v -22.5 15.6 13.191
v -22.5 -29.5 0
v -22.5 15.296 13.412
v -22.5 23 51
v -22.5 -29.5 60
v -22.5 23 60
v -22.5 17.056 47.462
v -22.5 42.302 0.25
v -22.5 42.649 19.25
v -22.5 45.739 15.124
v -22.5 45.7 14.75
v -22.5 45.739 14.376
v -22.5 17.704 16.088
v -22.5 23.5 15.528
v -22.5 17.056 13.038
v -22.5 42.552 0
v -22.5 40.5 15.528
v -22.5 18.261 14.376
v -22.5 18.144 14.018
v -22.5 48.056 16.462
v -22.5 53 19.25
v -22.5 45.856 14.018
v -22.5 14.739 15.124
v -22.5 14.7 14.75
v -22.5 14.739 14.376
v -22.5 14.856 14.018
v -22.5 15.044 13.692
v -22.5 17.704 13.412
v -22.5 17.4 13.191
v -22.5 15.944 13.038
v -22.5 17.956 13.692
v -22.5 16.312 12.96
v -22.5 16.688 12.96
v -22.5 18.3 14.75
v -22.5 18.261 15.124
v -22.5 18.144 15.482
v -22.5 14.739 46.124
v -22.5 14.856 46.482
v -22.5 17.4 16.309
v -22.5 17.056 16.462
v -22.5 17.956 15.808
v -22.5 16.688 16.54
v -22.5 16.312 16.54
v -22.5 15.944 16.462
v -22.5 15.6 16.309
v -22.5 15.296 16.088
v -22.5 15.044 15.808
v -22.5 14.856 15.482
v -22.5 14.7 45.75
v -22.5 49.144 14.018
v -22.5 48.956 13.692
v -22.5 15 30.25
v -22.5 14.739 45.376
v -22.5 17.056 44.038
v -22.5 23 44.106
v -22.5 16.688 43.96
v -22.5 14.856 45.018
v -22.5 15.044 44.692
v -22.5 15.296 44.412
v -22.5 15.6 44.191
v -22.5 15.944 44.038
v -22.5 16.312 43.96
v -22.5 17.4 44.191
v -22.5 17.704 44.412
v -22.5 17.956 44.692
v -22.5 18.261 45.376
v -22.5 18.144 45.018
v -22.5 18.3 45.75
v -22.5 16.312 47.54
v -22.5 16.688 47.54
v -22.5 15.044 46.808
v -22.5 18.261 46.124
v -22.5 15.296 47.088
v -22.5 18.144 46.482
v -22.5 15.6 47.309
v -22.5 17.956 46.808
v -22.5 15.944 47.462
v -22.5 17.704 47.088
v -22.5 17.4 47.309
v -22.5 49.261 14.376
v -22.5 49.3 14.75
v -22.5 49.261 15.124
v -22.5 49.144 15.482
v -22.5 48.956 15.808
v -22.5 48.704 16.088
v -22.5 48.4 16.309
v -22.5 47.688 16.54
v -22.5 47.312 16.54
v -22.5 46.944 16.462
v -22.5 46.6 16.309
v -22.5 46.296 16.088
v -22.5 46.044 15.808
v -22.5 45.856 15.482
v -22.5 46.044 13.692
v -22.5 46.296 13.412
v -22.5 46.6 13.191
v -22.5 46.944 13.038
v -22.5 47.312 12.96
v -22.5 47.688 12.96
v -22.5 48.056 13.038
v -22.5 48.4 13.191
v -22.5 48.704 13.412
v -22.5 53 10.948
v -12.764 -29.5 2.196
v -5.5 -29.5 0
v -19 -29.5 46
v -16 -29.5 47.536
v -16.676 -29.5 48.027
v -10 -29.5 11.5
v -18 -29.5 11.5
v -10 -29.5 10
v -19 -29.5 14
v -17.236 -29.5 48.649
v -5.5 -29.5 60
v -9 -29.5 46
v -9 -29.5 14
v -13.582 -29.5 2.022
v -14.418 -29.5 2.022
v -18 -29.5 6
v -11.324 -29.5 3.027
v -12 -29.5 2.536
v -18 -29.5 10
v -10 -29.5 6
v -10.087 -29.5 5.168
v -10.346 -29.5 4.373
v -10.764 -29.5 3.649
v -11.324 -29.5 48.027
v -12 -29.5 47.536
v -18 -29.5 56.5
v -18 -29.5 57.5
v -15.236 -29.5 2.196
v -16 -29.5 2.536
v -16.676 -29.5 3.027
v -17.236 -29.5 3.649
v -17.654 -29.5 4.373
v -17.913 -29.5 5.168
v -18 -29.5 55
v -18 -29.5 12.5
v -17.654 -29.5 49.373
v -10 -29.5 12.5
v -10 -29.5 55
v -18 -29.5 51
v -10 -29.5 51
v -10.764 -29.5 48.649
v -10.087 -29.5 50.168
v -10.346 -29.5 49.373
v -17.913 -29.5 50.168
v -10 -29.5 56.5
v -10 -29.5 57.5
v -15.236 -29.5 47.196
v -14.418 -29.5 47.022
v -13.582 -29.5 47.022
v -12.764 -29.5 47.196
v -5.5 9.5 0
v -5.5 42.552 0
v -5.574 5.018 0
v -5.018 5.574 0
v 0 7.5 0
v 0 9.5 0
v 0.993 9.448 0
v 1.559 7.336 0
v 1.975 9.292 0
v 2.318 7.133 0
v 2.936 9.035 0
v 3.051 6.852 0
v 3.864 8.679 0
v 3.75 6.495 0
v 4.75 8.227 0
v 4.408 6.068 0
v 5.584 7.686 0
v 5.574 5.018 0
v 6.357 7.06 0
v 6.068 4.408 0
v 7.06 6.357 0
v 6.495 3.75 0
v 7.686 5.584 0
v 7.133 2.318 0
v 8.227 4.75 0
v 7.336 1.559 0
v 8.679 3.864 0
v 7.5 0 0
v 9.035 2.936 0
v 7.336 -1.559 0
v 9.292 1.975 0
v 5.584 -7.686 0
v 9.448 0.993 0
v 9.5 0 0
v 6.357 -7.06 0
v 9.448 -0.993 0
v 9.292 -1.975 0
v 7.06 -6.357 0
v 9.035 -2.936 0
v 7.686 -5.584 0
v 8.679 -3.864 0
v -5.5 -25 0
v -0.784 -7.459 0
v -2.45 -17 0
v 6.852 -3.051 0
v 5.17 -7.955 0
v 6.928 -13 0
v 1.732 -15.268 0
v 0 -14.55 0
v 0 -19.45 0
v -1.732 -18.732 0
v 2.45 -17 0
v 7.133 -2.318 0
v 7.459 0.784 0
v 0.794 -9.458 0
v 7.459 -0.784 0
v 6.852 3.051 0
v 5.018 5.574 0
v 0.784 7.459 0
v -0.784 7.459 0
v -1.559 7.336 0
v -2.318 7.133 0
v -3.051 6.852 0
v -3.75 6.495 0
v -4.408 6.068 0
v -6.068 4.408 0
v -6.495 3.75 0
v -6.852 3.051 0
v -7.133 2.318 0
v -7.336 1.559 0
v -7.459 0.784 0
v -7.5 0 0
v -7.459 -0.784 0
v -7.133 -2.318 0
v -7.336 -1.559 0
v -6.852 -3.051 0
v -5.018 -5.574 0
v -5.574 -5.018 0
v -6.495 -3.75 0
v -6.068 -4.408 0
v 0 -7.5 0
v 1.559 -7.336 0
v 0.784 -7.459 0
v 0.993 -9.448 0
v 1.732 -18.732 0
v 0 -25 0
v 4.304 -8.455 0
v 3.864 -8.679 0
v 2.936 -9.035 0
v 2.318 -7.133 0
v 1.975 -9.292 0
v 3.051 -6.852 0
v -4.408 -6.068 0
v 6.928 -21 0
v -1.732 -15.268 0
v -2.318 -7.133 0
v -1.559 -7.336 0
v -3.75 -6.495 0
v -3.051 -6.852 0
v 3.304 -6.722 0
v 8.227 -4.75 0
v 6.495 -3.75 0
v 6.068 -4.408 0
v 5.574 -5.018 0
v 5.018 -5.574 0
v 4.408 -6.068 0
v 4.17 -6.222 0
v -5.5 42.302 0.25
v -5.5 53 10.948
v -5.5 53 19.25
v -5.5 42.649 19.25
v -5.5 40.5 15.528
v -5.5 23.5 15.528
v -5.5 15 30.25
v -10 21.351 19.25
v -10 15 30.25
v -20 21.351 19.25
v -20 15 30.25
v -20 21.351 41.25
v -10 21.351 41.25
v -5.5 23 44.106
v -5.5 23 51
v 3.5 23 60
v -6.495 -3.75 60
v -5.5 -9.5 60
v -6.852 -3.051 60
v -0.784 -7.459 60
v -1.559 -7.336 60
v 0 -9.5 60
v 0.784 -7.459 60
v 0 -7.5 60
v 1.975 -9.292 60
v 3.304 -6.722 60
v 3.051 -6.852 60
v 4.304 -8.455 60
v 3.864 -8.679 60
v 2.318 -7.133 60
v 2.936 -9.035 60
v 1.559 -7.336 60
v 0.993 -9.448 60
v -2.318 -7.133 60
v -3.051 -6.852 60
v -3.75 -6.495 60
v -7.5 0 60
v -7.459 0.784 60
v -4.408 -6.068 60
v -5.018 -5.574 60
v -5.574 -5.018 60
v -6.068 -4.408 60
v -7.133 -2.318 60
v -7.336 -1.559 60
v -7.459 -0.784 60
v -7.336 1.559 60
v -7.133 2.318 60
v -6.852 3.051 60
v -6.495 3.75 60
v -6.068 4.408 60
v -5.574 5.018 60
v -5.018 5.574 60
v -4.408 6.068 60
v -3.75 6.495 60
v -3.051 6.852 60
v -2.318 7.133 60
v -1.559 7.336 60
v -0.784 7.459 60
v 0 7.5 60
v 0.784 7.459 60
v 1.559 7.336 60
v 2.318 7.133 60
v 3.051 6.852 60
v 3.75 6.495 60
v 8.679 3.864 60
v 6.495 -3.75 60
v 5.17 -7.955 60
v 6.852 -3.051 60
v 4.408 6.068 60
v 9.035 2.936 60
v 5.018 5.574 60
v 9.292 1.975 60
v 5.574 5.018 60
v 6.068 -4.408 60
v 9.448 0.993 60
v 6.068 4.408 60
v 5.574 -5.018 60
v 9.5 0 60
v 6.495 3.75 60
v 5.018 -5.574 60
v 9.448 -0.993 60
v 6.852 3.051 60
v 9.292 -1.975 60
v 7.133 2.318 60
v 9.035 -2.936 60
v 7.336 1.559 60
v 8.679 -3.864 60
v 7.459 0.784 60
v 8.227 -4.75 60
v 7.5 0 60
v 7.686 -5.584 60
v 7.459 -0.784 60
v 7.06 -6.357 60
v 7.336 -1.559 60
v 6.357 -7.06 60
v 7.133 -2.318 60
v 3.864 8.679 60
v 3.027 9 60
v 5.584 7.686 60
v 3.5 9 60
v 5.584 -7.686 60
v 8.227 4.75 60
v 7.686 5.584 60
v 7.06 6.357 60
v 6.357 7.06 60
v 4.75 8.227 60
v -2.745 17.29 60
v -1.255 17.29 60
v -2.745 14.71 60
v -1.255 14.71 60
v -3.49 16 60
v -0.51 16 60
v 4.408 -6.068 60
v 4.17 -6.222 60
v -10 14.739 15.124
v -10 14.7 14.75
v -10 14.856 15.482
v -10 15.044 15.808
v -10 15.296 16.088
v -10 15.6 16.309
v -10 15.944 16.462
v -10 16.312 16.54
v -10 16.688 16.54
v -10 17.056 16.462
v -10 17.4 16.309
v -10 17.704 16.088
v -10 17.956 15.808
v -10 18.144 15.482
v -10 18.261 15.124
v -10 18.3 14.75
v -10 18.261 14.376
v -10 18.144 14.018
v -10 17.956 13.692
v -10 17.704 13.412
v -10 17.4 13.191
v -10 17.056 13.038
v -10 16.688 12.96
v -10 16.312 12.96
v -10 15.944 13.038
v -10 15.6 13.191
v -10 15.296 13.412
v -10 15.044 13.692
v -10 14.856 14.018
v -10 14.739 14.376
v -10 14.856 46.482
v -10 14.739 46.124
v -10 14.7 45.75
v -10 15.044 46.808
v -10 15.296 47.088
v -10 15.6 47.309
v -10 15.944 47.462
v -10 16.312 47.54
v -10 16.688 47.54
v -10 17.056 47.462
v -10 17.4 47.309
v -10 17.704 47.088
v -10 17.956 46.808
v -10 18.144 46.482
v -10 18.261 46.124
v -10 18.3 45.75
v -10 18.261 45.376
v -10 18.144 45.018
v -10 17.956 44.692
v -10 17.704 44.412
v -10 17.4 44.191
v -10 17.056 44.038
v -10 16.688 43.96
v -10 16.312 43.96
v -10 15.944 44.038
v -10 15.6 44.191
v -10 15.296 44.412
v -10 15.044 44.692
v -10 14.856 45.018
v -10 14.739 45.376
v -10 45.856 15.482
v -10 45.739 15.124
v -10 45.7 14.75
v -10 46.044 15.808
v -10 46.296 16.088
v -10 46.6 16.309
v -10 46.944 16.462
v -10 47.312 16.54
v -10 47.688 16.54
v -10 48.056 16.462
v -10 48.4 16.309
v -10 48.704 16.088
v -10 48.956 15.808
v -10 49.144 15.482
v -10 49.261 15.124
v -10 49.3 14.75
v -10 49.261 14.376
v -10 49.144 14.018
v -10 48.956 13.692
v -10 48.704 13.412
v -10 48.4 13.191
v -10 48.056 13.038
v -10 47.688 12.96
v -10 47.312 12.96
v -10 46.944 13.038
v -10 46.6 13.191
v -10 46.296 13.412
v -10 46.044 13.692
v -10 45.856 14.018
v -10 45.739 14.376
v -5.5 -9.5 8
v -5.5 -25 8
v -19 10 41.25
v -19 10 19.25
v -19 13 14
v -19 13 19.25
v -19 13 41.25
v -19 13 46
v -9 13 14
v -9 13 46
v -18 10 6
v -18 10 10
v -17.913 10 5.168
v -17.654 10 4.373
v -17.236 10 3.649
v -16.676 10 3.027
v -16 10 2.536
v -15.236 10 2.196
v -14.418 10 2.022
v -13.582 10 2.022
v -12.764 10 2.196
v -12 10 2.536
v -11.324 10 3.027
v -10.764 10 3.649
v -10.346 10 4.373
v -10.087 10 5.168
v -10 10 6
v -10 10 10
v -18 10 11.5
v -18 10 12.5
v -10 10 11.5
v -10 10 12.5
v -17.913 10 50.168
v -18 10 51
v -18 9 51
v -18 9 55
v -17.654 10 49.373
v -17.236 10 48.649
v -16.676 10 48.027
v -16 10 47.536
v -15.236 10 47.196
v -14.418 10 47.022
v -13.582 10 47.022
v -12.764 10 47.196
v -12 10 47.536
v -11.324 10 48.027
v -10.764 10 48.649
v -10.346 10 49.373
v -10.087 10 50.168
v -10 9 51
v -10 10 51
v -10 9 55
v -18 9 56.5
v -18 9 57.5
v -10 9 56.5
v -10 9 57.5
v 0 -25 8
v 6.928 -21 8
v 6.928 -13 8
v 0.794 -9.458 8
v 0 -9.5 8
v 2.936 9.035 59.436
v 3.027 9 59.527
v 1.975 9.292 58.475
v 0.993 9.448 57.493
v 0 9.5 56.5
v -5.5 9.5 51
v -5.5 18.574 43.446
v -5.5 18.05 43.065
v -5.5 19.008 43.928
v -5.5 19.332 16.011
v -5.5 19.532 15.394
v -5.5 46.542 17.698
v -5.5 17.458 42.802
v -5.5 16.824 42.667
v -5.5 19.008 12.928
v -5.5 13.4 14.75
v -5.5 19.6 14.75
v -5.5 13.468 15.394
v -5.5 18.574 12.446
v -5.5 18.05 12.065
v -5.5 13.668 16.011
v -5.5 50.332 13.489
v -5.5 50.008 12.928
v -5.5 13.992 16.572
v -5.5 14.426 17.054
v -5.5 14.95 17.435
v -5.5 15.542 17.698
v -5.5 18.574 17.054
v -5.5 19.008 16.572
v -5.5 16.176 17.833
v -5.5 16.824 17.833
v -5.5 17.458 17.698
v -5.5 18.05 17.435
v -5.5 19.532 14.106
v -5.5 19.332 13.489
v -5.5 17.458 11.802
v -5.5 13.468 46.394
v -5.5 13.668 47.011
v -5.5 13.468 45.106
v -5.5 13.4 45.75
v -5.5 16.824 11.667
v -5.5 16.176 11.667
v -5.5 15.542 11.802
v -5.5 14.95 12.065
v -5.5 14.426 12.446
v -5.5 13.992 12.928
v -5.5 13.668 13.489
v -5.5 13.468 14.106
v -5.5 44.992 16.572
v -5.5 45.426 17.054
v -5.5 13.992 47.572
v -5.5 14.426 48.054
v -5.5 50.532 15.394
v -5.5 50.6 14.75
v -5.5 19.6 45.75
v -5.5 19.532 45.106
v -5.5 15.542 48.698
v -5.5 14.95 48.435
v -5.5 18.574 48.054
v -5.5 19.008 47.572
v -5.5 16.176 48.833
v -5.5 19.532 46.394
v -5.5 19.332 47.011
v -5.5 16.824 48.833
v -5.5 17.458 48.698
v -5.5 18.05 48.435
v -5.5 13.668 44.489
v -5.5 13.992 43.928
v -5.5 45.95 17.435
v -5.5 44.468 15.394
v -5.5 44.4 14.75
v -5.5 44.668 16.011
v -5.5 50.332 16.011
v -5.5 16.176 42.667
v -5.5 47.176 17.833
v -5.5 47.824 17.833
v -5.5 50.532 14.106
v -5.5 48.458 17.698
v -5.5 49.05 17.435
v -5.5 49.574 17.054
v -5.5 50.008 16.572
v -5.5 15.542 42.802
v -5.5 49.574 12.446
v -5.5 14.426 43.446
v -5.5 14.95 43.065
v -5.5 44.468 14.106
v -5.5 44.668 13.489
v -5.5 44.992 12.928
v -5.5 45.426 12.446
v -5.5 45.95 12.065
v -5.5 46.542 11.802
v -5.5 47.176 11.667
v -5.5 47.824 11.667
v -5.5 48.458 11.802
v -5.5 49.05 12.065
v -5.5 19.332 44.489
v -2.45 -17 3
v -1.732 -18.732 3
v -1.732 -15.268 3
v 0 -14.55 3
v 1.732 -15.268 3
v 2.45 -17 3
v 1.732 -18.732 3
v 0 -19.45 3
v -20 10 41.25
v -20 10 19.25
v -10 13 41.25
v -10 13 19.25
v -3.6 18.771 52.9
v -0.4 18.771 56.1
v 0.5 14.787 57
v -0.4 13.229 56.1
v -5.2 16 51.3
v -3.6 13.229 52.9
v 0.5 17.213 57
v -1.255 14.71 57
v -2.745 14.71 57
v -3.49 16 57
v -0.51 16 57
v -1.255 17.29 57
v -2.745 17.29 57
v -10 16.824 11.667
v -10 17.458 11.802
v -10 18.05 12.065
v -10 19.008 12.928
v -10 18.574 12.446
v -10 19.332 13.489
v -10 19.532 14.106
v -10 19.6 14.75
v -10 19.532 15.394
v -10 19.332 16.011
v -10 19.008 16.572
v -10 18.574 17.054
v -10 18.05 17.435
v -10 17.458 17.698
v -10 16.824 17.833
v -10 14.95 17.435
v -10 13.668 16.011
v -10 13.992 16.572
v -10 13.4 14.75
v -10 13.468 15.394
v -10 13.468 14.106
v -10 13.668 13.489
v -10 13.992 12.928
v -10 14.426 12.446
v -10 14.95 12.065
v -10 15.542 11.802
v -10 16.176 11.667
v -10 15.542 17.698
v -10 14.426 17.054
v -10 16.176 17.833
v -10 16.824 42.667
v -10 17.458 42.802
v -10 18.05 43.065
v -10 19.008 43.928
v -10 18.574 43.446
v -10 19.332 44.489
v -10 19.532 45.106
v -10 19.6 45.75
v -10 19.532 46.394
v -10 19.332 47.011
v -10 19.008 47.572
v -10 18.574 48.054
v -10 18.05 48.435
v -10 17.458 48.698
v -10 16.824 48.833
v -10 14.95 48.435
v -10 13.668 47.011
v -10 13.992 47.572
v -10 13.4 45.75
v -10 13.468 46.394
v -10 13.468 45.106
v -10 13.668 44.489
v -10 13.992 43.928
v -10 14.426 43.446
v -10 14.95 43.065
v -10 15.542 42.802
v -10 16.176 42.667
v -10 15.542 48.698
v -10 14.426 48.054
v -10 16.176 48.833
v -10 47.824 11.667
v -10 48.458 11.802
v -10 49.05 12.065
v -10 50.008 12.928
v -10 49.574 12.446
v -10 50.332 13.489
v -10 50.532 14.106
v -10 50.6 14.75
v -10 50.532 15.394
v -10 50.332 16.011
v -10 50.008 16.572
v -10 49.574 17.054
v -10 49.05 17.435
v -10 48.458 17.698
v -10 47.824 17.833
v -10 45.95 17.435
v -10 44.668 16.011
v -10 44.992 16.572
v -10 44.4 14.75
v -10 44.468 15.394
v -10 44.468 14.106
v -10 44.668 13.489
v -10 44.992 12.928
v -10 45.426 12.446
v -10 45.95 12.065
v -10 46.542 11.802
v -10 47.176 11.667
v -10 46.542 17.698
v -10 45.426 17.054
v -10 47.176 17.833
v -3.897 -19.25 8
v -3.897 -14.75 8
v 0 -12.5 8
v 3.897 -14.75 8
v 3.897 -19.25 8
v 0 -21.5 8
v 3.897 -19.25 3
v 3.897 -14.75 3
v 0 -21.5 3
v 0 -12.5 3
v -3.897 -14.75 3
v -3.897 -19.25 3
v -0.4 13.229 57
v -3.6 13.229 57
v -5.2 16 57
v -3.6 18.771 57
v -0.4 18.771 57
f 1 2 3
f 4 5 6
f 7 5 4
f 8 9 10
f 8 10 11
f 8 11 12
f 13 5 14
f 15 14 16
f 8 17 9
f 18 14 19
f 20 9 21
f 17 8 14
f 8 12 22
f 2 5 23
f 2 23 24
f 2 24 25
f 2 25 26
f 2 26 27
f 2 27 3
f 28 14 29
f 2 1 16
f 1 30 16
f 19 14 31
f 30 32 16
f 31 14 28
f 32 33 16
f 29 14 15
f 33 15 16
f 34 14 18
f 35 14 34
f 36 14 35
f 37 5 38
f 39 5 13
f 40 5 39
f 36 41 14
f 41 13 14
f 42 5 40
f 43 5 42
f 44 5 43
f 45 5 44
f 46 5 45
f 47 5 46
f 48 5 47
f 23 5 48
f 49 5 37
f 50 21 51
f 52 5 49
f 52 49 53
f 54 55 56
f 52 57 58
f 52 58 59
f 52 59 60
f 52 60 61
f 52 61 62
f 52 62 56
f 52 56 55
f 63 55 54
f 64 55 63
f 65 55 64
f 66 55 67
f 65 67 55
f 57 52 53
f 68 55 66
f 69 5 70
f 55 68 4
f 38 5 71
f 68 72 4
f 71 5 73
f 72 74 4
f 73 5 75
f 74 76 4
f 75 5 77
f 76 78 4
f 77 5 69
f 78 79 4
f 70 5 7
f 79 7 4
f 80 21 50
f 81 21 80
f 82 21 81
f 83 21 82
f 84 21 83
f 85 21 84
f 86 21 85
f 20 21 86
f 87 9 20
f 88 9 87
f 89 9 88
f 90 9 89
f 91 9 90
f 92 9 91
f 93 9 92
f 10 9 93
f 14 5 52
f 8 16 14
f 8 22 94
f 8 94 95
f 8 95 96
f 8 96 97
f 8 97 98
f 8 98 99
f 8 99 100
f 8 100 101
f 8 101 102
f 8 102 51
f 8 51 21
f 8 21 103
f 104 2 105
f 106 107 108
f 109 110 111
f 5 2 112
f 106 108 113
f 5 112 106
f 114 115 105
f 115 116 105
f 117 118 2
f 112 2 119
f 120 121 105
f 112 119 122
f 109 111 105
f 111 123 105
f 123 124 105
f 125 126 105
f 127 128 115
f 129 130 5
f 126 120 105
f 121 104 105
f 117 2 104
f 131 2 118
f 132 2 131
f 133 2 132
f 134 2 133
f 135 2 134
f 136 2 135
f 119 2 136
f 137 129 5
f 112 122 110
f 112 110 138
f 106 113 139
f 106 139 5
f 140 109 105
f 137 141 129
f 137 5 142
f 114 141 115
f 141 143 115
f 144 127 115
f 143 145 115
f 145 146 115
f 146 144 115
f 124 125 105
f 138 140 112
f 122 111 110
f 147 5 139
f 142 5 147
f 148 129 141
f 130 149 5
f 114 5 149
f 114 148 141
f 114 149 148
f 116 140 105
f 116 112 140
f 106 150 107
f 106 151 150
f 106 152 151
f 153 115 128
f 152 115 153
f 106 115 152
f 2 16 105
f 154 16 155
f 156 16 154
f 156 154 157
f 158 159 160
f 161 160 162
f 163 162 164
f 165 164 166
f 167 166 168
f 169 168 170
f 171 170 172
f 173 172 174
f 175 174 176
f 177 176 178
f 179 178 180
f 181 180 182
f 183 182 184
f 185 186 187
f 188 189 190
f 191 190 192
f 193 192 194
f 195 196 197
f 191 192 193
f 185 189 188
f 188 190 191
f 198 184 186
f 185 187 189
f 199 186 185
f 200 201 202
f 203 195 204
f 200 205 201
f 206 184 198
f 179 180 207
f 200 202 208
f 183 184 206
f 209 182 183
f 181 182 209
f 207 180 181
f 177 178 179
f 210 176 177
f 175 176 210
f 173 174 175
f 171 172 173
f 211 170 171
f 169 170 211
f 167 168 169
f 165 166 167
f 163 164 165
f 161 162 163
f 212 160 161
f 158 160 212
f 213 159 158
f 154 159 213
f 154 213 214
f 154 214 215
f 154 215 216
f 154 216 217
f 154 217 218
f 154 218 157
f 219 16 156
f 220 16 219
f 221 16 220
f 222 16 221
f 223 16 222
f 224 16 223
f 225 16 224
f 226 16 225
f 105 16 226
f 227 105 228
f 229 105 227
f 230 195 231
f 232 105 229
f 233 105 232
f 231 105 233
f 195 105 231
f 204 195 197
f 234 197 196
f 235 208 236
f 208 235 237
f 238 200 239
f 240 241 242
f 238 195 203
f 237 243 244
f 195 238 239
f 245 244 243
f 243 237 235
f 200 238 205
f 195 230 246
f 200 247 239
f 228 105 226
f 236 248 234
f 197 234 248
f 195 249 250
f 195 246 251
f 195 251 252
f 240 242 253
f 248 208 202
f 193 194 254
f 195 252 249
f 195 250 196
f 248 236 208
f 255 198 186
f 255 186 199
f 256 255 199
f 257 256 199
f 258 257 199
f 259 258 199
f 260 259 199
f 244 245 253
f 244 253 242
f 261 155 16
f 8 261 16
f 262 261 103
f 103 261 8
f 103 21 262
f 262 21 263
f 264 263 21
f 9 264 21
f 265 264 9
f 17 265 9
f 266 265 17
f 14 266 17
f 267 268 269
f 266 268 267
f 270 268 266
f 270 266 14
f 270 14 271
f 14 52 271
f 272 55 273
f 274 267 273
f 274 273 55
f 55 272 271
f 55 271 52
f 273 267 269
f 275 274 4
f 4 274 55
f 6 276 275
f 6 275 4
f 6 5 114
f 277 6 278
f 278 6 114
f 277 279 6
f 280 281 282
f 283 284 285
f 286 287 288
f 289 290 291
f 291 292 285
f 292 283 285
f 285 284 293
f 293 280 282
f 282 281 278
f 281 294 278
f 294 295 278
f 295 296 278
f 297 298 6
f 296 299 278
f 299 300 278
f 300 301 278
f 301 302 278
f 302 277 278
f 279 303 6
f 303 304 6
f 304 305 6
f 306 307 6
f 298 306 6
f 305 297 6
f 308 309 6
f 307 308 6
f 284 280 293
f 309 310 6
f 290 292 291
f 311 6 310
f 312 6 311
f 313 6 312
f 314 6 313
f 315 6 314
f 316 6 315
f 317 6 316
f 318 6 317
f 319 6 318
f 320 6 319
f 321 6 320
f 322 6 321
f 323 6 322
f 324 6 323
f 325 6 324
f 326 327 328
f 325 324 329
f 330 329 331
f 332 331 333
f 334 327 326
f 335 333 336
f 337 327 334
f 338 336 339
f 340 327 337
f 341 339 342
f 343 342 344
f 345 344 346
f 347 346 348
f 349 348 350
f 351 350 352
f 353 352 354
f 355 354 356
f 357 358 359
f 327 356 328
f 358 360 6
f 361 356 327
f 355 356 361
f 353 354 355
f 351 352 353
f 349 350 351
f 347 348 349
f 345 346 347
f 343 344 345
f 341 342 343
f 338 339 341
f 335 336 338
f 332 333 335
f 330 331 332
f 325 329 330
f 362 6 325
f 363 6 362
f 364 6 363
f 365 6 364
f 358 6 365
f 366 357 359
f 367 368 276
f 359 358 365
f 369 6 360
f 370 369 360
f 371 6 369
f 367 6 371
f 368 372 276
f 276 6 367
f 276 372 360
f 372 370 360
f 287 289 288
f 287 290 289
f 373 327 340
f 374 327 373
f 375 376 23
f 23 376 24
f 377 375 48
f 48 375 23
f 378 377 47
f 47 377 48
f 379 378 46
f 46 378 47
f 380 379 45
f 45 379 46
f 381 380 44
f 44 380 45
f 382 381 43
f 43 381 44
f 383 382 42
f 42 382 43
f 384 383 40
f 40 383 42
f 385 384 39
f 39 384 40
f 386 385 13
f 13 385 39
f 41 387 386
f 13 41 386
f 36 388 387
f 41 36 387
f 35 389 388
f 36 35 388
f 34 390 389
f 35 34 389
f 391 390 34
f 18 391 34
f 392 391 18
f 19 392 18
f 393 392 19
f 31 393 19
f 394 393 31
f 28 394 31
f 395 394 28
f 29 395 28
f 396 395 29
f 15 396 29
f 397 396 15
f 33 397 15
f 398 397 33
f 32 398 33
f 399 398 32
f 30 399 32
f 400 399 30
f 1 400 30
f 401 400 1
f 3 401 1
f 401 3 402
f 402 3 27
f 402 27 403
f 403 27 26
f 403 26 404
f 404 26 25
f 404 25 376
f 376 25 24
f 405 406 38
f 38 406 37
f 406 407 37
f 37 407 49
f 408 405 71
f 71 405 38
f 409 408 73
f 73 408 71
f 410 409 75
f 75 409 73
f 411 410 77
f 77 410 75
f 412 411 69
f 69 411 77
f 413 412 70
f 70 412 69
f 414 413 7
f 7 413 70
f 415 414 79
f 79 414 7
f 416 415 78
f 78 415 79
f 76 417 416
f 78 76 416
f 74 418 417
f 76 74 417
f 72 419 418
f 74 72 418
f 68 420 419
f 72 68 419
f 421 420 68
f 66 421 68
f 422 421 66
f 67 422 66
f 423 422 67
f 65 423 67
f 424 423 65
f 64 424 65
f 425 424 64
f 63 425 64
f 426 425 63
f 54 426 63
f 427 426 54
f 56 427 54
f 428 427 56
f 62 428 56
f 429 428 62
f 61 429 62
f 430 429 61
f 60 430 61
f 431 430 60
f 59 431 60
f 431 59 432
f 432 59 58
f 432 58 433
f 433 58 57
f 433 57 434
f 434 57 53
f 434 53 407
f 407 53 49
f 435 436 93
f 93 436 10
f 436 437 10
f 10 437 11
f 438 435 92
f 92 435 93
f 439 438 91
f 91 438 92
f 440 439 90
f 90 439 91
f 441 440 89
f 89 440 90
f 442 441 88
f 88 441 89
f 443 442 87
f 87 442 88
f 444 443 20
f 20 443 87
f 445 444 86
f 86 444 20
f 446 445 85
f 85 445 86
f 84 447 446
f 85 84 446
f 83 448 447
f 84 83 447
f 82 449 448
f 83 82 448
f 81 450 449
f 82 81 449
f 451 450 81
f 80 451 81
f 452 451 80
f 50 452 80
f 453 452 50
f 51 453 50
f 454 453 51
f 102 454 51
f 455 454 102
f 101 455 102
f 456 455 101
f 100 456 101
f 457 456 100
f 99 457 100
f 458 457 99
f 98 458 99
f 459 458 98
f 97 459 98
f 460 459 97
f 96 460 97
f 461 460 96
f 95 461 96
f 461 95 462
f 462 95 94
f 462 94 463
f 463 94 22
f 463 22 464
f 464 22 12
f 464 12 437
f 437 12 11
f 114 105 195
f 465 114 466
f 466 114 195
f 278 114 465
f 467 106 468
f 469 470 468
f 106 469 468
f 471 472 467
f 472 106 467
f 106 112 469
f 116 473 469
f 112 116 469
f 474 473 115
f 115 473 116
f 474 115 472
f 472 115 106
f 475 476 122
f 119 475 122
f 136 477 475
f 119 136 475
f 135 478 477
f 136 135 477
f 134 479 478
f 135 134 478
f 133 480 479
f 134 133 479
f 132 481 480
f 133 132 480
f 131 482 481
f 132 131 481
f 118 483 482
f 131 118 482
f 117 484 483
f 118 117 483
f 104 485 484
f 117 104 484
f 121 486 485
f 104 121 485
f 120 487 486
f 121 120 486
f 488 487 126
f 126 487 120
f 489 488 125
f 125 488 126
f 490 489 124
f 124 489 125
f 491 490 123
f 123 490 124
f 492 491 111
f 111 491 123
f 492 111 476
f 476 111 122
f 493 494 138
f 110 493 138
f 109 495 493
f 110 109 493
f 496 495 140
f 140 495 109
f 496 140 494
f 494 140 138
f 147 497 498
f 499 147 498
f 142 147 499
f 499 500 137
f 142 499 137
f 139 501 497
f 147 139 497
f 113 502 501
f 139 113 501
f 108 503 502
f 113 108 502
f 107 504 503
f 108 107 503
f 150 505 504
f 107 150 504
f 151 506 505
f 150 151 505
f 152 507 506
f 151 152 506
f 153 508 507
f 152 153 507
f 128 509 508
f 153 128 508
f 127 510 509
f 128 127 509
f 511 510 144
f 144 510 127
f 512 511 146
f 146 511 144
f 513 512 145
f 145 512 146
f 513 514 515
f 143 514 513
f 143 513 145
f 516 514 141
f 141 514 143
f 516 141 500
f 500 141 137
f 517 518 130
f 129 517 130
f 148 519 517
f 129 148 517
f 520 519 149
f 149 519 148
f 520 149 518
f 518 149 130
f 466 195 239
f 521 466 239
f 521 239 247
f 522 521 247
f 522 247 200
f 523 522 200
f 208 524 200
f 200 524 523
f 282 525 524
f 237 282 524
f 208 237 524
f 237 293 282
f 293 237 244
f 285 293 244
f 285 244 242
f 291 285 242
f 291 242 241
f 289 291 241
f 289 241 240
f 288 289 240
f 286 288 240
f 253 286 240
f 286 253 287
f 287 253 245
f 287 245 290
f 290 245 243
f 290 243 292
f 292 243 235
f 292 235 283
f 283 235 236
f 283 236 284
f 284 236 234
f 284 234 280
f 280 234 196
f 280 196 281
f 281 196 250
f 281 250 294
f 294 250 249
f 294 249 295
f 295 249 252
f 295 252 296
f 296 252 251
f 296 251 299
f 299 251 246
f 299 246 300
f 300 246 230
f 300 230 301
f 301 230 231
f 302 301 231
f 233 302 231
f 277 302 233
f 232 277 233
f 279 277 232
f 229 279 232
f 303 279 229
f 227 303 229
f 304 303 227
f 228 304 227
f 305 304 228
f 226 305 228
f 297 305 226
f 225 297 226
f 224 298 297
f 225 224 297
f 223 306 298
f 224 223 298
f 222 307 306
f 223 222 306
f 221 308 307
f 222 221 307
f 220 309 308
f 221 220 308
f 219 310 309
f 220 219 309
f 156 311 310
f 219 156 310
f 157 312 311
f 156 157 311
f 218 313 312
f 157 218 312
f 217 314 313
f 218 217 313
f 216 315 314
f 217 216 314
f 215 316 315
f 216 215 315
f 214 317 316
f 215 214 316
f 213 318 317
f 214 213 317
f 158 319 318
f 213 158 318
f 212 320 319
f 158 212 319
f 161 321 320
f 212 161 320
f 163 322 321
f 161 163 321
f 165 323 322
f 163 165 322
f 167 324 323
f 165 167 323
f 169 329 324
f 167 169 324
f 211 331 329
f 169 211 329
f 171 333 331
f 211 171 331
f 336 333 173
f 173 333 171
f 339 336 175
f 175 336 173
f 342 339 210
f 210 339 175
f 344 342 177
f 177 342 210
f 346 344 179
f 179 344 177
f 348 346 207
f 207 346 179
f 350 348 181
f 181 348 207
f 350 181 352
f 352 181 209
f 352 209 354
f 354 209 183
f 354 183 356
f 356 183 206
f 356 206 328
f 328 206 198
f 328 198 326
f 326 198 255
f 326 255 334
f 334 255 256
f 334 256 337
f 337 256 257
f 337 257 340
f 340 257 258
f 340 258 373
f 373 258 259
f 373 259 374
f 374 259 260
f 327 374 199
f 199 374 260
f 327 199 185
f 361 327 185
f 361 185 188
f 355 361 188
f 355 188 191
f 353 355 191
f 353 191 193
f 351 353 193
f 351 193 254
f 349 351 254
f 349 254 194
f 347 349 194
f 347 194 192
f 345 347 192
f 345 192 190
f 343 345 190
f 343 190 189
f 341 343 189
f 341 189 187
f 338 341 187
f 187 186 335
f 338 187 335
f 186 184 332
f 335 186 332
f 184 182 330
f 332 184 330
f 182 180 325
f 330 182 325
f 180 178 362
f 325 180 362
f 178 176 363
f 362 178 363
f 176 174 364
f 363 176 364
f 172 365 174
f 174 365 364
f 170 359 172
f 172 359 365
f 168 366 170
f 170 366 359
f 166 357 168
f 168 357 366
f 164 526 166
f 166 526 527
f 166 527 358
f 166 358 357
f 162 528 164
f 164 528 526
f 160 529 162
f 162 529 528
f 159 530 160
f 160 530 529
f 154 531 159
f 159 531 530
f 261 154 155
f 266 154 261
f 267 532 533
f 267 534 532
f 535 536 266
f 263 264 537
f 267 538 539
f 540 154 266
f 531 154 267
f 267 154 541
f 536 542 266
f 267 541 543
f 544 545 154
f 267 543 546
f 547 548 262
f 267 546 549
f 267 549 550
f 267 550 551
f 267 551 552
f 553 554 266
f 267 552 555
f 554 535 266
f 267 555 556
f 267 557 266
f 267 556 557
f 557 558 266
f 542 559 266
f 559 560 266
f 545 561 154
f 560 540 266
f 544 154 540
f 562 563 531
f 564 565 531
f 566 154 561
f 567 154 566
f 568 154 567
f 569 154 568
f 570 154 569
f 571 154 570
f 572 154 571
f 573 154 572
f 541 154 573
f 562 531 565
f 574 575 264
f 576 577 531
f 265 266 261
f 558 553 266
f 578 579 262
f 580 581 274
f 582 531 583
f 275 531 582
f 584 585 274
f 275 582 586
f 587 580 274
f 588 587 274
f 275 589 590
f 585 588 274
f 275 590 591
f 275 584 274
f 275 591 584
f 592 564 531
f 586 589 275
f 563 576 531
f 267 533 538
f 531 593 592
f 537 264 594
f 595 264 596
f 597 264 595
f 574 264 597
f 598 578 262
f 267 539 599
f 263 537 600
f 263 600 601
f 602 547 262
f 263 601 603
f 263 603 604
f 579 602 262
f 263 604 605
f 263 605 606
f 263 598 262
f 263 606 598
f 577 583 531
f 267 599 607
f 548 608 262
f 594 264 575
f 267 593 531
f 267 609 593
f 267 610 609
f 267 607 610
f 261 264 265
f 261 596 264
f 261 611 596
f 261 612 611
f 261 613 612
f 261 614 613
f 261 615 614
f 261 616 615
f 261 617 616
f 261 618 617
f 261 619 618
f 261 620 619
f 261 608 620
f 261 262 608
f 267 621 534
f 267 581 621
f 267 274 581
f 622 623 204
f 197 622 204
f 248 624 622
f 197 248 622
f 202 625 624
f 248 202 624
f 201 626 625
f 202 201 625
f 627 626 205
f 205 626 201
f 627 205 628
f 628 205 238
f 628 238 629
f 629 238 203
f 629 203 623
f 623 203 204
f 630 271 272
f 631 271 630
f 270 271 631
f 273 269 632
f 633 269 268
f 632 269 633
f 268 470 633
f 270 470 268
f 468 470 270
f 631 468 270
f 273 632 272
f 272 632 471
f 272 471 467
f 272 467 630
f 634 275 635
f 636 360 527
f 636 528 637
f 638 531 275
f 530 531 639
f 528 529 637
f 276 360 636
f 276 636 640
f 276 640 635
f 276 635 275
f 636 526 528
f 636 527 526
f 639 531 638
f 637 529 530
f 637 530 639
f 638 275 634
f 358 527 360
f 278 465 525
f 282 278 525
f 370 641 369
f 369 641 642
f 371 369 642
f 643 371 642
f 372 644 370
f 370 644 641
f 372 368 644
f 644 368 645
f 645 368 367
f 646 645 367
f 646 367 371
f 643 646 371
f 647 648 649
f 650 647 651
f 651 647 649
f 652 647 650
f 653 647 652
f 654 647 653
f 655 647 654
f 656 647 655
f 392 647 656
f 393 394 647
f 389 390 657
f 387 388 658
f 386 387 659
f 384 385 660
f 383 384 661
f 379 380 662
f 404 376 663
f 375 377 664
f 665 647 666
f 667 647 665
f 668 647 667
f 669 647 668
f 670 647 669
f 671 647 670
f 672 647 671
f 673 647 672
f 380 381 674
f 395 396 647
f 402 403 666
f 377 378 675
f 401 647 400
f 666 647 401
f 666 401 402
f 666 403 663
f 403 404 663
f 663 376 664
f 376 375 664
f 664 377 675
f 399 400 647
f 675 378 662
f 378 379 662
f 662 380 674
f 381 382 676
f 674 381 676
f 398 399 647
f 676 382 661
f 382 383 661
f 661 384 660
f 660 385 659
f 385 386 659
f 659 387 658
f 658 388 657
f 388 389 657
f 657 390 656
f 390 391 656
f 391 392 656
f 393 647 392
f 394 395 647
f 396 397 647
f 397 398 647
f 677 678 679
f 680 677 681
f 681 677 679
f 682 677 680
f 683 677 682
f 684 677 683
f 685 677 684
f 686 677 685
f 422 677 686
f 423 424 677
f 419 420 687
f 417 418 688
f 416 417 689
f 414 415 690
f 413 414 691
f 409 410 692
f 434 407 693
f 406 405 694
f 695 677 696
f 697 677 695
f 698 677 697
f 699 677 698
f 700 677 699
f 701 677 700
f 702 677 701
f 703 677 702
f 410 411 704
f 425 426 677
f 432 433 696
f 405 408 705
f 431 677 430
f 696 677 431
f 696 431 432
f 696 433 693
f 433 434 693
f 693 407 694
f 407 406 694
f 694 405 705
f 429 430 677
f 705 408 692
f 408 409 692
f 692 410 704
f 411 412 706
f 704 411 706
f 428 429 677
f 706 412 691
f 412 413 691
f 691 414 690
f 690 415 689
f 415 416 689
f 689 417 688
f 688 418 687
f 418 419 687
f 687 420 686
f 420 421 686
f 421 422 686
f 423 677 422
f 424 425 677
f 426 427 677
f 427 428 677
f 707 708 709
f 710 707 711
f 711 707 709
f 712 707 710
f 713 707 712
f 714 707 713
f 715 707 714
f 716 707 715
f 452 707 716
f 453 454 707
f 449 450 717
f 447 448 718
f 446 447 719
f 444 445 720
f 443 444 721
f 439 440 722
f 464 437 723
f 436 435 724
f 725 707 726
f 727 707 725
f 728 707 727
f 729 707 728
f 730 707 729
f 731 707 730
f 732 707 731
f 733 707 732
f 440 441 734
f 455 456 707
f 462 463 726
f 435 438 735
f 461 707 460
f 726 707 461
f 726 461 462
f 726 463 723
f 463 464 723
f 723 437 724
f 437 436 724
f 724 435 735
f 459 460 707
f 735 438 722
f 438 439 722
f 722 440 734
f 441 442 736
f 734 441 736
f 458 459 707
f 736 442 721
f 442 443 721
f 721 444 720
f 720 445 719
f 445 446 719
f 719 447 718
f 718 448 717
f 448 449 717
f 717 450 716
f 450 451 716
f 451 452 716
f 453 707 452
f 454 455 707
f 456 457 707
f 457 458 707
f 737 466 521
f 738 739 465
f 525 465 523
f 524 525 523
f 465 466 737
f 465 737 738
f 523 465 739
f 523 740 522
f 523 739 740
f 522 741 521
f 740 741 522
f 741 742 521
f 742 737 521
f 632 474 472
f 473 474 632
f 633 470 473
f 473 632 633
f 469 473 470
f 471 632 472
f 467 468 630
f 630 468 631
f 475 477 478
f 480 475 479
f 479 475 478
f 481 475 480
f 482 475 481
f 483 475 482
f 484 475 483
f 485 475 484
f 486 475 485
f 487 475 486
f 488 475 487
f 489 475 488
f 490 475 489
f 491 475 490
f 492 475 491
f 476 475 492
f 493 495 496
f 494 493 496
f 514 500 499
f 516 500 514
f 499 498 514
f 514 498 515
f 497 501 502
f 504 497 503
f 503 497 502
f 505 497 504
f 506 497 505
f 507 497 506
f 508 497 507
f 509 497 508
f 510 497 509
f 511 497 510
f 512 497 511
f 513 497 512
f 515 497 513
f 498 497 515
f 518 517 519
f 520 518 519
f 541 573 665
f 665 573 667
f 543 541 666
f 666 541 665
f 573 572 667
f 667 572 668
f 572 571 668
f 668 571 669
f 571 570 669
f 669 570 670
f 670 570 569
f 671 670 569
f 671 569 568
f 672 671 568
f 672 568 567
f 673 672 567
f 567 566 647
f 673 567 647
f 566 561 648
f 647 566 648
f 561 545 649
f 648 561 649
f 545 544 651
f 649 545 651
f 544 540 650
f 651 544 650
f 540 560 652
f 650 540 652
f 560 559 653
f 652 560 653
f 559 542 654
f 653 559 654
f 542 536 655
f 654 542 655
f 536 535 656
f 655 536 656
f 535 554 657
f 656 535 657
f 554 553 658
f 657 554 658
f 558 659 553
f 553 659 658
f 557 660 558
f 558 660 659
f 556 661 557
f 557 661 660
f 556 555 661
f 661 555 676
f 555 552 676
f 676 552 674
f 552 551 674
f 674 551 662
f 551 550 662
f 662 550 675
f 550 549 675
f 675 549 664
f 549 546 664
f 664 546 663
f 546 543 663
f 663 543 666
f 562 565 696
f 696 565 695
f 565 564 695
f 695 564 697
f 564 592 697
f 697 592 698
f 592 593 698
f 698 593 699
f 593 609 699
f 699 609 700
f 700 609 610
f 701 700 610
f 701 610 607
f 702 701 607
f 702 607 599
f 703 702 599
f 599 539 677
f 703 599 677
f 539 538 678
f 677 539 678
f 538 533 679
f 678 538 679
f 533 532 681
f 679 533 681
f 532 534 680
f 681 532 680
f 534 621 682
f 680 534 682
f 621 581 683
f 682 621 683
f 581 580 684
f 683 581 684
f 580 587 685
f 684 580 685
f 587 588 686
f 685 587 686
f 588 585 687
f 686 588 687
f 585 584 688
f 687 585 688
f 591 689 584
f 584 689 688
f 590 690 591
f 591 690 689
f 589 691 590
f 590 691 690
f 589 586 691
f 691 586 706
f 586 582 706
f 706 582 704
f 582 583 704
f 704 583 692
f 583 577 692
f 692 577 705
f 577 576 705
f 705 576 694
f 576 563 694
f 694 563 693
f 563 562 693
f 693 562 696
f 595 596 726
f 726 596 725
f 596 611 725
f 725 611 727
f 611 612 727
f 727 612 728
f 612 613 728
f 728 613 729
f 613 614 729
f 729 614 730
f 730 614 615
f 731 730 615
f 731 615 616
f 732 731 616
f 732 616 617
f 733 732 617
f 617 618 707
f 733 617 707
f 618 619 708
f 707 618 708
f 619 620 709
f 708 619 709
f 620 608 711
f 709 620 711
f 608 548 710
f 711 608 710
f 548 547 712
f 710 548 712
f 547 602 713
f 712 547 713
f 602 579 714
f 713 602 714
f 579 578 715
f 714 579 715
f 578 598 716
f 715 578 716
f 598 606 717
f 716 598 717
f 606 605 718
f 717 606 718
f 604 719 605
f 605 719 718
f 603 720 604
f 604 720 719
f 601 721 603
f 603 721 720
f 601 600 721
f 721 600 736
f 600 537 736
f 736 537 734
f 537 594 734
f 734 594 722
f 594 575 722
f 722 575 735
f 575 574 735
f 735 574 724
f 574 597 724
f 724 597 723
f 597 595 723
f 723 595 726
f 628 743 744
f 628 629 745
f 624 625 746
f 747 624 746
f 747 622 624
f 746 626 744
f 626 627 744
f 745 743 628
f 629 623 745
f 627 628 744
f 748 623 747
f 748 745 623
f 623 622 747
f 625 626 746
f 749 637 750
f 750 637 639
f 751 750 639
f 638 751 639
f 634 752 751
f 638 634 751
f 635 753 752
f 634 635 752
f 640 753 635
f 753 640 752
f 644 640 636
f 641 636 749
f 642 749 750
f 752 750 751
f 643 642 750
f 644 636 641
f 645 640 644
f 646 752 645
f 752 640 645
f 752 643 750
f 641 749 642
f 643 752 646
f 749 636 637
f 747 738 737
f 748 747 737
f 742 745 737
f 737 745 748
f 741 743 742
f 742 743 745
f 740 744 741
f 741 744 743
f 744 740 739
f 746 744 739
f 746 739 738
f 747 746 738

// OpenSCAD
// file: inc/bearing.scad
// PRUSA iteration3
// Bearing holders
// GNU GPL v3
// Josef Průša <iam@josefprusa.cz> and contributors
// http://www.reprap.org/wiki/Prusa_Mendel
// http://prusamendel.org

bearing_diameter = 15;

module horizontal_bearing_base(bearings=1){
 translate(v=[0,0,6]) cube(size = [24,8+bearings*25,12], center = true);	
}
module horizontal_bearing_holes(bearings=1){
 cutter_lenght = 10+bearings*25;
 one_holder_lenght = 8+25;
 holder_lenght = 8+bearings*25;
 
 // Main bearing cut
 difference(){
  translate(v=[0,0,12]) rotate(a=[90,0,0]) translate(v=[0,0,-cutter_lenght/2]) cylinder(h = cutter_lenght, r=bearing_diameter/2, $fn=50);
  // Bearing retainers
  translate(v=[0,1-holder_lenght/2,3]) cube(size = [24,6,8], center = true);
  translate(v=[0,-1+holder_lenght/2,3]) cube(size = [24,6,8], center = true);
 }
 
 // Ziptie cutouts
 ziptie_cut_ofset = 0;
 for ( i = [0 : bearings-1] ){
  // For easier positioning I move them by half of one 
  // bearing holder then add each bearign lenght and then center again
  translate(v=[0,-holder_lenght/2,0]) translate(v=[0,one_holder_lenght/2+i*25,0]) difference(){
   union(){
    translate(v=[0,2-6,12]) rotate(a=[90,0,0]) translate(v=[0,0,0]) cylinder(h = 4, r=12.5, $fn=50);
    translate(v=[0,2+6,12]) rotate(a=[90,0,0]) translate(v=[0,0,0]) cylinder(h = 4, r=12.5, $fn=50);
   }
   translate(v=[0,10,12]) rotate(a=[90,0,0]) translate(v=[0,0,0]) cylinder(h = 24, r=10, $fn=50);
  }
 }
 
}

module horizontal_bearing_test(){
 difference(){
  horizontal_bearing_base(1);
  horizontal_bearing_holes(1);
 }
 translate(v=[30,0,0]) difference(){
  horizontal_bearing_base(2);
  horizontal_bearing_holes(2);
 }
 translate(v=[60,0,0]) difference(){
  horizontal_bearing_base(3);
  horizontal_bearing_holes(3);
 }
}



thinwall = 2;
bearing_size = bearing_diameter + 2 * thinwall;

module vertical_bearing_base(){
 translate(v=[-2-bearing_size/4,0,30]) cube(size = [4+bearing_size/2,bearing_size,60], center = true);
 cylinder(h = 60, r=bearing_size/2, $fn = 60);
}

module vertical_bearing_holes(){
  translate(v=[0,0,-1]) cylinder(h = 62, r=bearing_diameter/2, $fn = 60);
  rotate(a=[0,0,-60]) translate(v=[10,0,31]) cube(size = [10,1,62], center = true);
}

difference(){
vertical_bearing_base();
vertical_bearing_holes();
}
// file: ../configuration.scad
x_rod_distance = 45;

// Select your belt type ******************************************************

//T2.5
belt_tooth_distance = 2.5;
belt_tooth_ratio = 0.5;

//T5 (strongly discouraged)
//belt_tooth_distance = 5;
//belt_tooth_ratio = 0.75;

//HTD3
//belt_tooth_distance = 3;
//belt_tooth_ratio = 0.75;

//MXL
//belt_tooth_distance = 2.032;
//belt_tooth_ratio = 0.64;

// Select your hot-end mount ******************************************************

// 0 = none; 1 = groove-mount (J-head/MakerGear etc.)
hotend_mount = 1;

hotend_groovemount_depth = 5;
hotend_groovemount_diameter = 11.05;
// file: inc/nuts_and_bolts.scad
// Copyright 2010 D1plo1d

// This library is dual licensed under the GPL 3.0 and the GNU Lesser General Public License as per http://creativecommons.org/licenses/LGPL/2.1/ .

//testNutsAndBolts();

module SKIPtestNutsAndBolts()
{
	$fn = 360;
	translate([0,15])nutHole(3, proj=2);
	boltHole(3, length= 30, proj=2);
}

MM = "mm";
INCH = "inch"; //Not yet supported

//Based on: http://www.roymech.co.uk/Useful_Tables/Screws/Hex_Screws.htm
METRIC_NUT_AC_WIDTHS =
[
	-1, //0 index is not used but reduces computation
	-1,
	-1,
	6.90,//m3
	8.10,//m4
	9.20,//m5
	11.50,//m6
	-1,
	15.50,//m8
	-1,
	19.60,//m10
	-1,
	22.10,//m12
	-1,
	-1,
	-1,
	27.70,//m16
	-1,
	-1,
	-1,
	34.60,//m20
	-1,
	-1,
	-1,
	41.60,//m24
	-1,
	-1,
	-1,
	-1,
	-1,
	53.1,//m30
	-1,
	-1,
	-1,
	-1,
	-1,
	63.5//m36
];
METRIC_NUT_THICKNESS =
[
	-1, //0 index is not used but reduces computation
	-1,
	-1,
	2.40,//m3
	3.20,//m4
	4.00,//m5
	5.00,//m6
	-1,
	6.50,//m8
	-1,
	8.00,//m10
	-1,
	10.00,//m12
	-1,
	-1,
	-1,
	13.00,//m16
	-1,
	-1,
	-1,
	16.00//m20
	-1,
	-1,
	-1,
	19.00,//m24
	-1,
	-1,
	-1,
	-1,
	-1,
	24.00,//m30
	-1,
	-1,
	-1,
	-1,
	-1,
	29.00//m36
];

COURSE_METRIC_BOLT_MAJOR_THREAD_DIAMETERS =
[//based on max values
	-1, //0 index is not used but reduces computation
	-1,
	-1,
	2.98,//m3
	3.978,//m4
	4.976,//m5
	5.974,//m6
	-1,
	7.972,//m8
	-1,
	9.968,//m10
	-1,
	11.966,//m12
	-1,
	-1,
	-1,
	15.962,//m16
	-1,
	-1,
	-1,
	19.958,//m20
	-1,
	-1,
	-1,
	23.952,//m24
	-1,
	-1,
	-1,
	-1,
	-1,
	29.947,//m30
	-1,
	-1,
	-1,
	-1,
	-1,
	35.940//m36
];

module nutHole(size, units=MM, tolerance = +0.0001, proj = -1)
{
	//takes a metric screw/nut size and looksup nut dimensions
	radius = METRIC_NUT_AC_WIDTHS[size]/2+tolerance;
	height = METRIC_NUT_THICKNESS[size]+tolerance;
	if (proj == -1)
	{
		cylinder(r= radius, h=height, $fn = 6, center=[0,0]);
	}
	if (proj == 1)
	{
		circle(r= radius, $fn = 6);
	}
	if (proj == 2)
	{
		translate([-radius/2, 0])
			square([radius*2, height]);
	}
}

module boltHole(size, units=MM, length, tolerance = +0.0001, proj = -1)
{
	radius = COURSE_METRIC_BOLT_MAJOR_THREAD_DIAMETERS[size]/2+tolerance;
//TODO: proper screw cap values
	capHeight = METRIC_NUT_THICKNESS[size]+tolerance; //METRIC_BOLT_CAP_HEIGHTS[size]+tolerance;
	capRadius = METRIC_NUT_AC_WIDTHS[size]/2+tolerance; //METRIC_BOLT_CAP_RADIUS[size]+tolerance;

	if (proj == -1)
	{
	translate([0, 0, -capHeight])
		cylinder(r= capRadius, h=capHeight, $fn=15);
	cylinder(r = radius, h = length, $fn=15);
	}
	if (proj == 1)
	{
		circle(r = radius);
	}
	if (proj == 2)
	{
		translate([-capRadius/2, -capHeight])
			square([capRadius*2, capHeight]);
		square([radius*2, length]);
	}
}
// file: inc/x-end.scad
// PRUSA iteration3
// X end prototype
// GNU GPL v3
// Josef Průša <iam@josefprusa.cz> and contributors
// http://www.reprap.org/wiki/Prusa_Mendel
// http://prusamendel.org

include <../../configuration.scad>
use <bearing.scad>

module x_end_base(){
// Main block
translate(v=[-14,-10,30]) cube(size = [17,39,60], center = true);
// Bearing holder
vertical_bearing_base();	
//Nut trap
 // Cube
 translate(v=[-2-2,-17,4]) cube(size = [8,16,8], center = true);
 // Hexagon
 translate(v=[0,-17,0]) rotate([0,0,30]) cylinder(h = 8, r=8, $fn = 6);
}

module x_end_holes(){
vertical_bearing_holes();
// Belt hole
translate(v=[-5.5-10+1.5,-10,30]) cube(size = [10,46,32], center = true);
// Bottom pushfit rod
translate(v=[-14,-40,6]) rotate(a=[-90,0,0]) pushfit_rod(8,50);
// Top pushfit rod
translate(v=[-14,-40,x_rod_distance+6]) rotate(a=[-90,0,0]) pushfit_rod(8,50);
// Nut trap
 translate(v=[0,-17,-1]) cylinder(h = 10, r=2.45);
 translate(v=[0,-17,3]) rotate([0,0,30]) cylinder(h = 5, r=4.5, $fn = 6);
}


// Final prototype
module x_end_plain(){
 difference(){
  x_end_base();
  x_end_holes();
 }
}

//x_end_plain();


module pushfit_rod(diameter,length){
 cylinder(h = length, r=diameter/2, $fn=30);
 translate(v=[0,-diameter/4,length/2]) cube(size = [diameter,diameter/2,length], center = true);
 translate(v=[0,-diameter/2-2,length/2]) cube(size = [diameter,1,length], center = true);
}
// main file
// PRUSA iteration3
// X end motor
// GNU GPL v3
// Josef Průša <iam@josefprusa.cz> and contributors
// http://www.reprap.org/wiki/Prusa_Mendel
// http://prusamendel.org

use <inc/x-end.scad>
use <inc/nuts_and_bolts.scad>

module x_end_motor_base(){
 x_end_base();
 translate(v=[-14,31,26.5]) cube(size = [17,44,53], center = true);
}


module x_end_motor_holes(){
 x_end_holes();
 // Position to place
 translate(v=[-1,32,30.25]){
  // Belt hole
  translate(v=[-14,1,0]) cube(size = [10,46,22], center = true);
  // Motor mounting holes
  translate(v=[20,-15.5,-15.5]) rotate(a=[0,-90,0]) rotate(a=[0,0,90]) cylinder(h = 70, r=1.8, $fn=30);
  translate(v=[1,-15.5,-15.5]) rotate(a=[0,-90,0]) rotate(a=[0,0,90]) cylinder(h = 10, r=3.1, $fn=30);
 

  translate(v=[20,-15.5,15.5]) rotate(a=[0,-90,0]) rotate(a=[0,0,90]) cylinder(h = 70, r=1.8, $fn=30);
  translate(v=[1,-15.5,15.5]) rotate(a=[0,-90,0]) rotate(a=[0,0,90]) cylinder(h = 10, r=3.1, $fn=30);


  translate(v=[20,15.5,-15.5]) rotate(a=[0,-90,0]) rotate(a=[0,0,90]) cylinder(h = 70, r=1.8, $fn=30);
  translate(v=[1,15.5,-15.5]) rotate(a=[0,-90,0]) rotate(a=[0,0,90]) cylinder(h = 10, r=3.1, $fn=30);


  translate(v=[20,15.5,15.5]) rotate(a=[0,-90,0]) rotate(a=[0,0,90]) cylinder(h = 70, r=1.8, $fn=30);
  translate(v=[1,15.5,15.5]) rotate(a=[0,-90,0]) rotate(a=[0,0,90]) cylinder(h = 10, r=3.1, $fn=30);

  // Material saving cutout 
  translate(v=[-10,12,10]) cube(size = [60,42,42], center = true);

  // Material saving cutout
  translate(v=[-10,40,-30]) rotate(a=[45,0,0])  cube(size = [60,42,42], center = true);
  // Motor shaft cutout
  translate(v=[0,0,0]) rotate(a=[0,-90,0]) rotate(a=[0,0,90]) cylinder(h = 70, r=17, $fn=6);
 }
}

module reg_altura_hole(){
	$fn=6;
	translate(v=[20.5,7,6])boltHole(3, length = 10);
	translate(v=[20.5,7,4])boltHole(3, length = 10);
	translate(v=[20.5,7,2])boltHole(3, length = 10);
}


module reg_altura(){
	difference(){
		cube([17+9,14 ,9]);
		translate([17,0,0])rotate([0,45,0])cube([9,15 ,19]);
reg_altura_hole();
		//translate([20,13/2,2])rotate([0,0,30])color("green")drillNut();
	}
}



// Final part
module x_end_motor(){
 difference(){
  x_end_motor_base();
  x_end_motor_holes();
 }
 translate([-22.5,9,51])reg_altura();
}
x_end_motor();
//x_end_idler_jmmp_hole();
